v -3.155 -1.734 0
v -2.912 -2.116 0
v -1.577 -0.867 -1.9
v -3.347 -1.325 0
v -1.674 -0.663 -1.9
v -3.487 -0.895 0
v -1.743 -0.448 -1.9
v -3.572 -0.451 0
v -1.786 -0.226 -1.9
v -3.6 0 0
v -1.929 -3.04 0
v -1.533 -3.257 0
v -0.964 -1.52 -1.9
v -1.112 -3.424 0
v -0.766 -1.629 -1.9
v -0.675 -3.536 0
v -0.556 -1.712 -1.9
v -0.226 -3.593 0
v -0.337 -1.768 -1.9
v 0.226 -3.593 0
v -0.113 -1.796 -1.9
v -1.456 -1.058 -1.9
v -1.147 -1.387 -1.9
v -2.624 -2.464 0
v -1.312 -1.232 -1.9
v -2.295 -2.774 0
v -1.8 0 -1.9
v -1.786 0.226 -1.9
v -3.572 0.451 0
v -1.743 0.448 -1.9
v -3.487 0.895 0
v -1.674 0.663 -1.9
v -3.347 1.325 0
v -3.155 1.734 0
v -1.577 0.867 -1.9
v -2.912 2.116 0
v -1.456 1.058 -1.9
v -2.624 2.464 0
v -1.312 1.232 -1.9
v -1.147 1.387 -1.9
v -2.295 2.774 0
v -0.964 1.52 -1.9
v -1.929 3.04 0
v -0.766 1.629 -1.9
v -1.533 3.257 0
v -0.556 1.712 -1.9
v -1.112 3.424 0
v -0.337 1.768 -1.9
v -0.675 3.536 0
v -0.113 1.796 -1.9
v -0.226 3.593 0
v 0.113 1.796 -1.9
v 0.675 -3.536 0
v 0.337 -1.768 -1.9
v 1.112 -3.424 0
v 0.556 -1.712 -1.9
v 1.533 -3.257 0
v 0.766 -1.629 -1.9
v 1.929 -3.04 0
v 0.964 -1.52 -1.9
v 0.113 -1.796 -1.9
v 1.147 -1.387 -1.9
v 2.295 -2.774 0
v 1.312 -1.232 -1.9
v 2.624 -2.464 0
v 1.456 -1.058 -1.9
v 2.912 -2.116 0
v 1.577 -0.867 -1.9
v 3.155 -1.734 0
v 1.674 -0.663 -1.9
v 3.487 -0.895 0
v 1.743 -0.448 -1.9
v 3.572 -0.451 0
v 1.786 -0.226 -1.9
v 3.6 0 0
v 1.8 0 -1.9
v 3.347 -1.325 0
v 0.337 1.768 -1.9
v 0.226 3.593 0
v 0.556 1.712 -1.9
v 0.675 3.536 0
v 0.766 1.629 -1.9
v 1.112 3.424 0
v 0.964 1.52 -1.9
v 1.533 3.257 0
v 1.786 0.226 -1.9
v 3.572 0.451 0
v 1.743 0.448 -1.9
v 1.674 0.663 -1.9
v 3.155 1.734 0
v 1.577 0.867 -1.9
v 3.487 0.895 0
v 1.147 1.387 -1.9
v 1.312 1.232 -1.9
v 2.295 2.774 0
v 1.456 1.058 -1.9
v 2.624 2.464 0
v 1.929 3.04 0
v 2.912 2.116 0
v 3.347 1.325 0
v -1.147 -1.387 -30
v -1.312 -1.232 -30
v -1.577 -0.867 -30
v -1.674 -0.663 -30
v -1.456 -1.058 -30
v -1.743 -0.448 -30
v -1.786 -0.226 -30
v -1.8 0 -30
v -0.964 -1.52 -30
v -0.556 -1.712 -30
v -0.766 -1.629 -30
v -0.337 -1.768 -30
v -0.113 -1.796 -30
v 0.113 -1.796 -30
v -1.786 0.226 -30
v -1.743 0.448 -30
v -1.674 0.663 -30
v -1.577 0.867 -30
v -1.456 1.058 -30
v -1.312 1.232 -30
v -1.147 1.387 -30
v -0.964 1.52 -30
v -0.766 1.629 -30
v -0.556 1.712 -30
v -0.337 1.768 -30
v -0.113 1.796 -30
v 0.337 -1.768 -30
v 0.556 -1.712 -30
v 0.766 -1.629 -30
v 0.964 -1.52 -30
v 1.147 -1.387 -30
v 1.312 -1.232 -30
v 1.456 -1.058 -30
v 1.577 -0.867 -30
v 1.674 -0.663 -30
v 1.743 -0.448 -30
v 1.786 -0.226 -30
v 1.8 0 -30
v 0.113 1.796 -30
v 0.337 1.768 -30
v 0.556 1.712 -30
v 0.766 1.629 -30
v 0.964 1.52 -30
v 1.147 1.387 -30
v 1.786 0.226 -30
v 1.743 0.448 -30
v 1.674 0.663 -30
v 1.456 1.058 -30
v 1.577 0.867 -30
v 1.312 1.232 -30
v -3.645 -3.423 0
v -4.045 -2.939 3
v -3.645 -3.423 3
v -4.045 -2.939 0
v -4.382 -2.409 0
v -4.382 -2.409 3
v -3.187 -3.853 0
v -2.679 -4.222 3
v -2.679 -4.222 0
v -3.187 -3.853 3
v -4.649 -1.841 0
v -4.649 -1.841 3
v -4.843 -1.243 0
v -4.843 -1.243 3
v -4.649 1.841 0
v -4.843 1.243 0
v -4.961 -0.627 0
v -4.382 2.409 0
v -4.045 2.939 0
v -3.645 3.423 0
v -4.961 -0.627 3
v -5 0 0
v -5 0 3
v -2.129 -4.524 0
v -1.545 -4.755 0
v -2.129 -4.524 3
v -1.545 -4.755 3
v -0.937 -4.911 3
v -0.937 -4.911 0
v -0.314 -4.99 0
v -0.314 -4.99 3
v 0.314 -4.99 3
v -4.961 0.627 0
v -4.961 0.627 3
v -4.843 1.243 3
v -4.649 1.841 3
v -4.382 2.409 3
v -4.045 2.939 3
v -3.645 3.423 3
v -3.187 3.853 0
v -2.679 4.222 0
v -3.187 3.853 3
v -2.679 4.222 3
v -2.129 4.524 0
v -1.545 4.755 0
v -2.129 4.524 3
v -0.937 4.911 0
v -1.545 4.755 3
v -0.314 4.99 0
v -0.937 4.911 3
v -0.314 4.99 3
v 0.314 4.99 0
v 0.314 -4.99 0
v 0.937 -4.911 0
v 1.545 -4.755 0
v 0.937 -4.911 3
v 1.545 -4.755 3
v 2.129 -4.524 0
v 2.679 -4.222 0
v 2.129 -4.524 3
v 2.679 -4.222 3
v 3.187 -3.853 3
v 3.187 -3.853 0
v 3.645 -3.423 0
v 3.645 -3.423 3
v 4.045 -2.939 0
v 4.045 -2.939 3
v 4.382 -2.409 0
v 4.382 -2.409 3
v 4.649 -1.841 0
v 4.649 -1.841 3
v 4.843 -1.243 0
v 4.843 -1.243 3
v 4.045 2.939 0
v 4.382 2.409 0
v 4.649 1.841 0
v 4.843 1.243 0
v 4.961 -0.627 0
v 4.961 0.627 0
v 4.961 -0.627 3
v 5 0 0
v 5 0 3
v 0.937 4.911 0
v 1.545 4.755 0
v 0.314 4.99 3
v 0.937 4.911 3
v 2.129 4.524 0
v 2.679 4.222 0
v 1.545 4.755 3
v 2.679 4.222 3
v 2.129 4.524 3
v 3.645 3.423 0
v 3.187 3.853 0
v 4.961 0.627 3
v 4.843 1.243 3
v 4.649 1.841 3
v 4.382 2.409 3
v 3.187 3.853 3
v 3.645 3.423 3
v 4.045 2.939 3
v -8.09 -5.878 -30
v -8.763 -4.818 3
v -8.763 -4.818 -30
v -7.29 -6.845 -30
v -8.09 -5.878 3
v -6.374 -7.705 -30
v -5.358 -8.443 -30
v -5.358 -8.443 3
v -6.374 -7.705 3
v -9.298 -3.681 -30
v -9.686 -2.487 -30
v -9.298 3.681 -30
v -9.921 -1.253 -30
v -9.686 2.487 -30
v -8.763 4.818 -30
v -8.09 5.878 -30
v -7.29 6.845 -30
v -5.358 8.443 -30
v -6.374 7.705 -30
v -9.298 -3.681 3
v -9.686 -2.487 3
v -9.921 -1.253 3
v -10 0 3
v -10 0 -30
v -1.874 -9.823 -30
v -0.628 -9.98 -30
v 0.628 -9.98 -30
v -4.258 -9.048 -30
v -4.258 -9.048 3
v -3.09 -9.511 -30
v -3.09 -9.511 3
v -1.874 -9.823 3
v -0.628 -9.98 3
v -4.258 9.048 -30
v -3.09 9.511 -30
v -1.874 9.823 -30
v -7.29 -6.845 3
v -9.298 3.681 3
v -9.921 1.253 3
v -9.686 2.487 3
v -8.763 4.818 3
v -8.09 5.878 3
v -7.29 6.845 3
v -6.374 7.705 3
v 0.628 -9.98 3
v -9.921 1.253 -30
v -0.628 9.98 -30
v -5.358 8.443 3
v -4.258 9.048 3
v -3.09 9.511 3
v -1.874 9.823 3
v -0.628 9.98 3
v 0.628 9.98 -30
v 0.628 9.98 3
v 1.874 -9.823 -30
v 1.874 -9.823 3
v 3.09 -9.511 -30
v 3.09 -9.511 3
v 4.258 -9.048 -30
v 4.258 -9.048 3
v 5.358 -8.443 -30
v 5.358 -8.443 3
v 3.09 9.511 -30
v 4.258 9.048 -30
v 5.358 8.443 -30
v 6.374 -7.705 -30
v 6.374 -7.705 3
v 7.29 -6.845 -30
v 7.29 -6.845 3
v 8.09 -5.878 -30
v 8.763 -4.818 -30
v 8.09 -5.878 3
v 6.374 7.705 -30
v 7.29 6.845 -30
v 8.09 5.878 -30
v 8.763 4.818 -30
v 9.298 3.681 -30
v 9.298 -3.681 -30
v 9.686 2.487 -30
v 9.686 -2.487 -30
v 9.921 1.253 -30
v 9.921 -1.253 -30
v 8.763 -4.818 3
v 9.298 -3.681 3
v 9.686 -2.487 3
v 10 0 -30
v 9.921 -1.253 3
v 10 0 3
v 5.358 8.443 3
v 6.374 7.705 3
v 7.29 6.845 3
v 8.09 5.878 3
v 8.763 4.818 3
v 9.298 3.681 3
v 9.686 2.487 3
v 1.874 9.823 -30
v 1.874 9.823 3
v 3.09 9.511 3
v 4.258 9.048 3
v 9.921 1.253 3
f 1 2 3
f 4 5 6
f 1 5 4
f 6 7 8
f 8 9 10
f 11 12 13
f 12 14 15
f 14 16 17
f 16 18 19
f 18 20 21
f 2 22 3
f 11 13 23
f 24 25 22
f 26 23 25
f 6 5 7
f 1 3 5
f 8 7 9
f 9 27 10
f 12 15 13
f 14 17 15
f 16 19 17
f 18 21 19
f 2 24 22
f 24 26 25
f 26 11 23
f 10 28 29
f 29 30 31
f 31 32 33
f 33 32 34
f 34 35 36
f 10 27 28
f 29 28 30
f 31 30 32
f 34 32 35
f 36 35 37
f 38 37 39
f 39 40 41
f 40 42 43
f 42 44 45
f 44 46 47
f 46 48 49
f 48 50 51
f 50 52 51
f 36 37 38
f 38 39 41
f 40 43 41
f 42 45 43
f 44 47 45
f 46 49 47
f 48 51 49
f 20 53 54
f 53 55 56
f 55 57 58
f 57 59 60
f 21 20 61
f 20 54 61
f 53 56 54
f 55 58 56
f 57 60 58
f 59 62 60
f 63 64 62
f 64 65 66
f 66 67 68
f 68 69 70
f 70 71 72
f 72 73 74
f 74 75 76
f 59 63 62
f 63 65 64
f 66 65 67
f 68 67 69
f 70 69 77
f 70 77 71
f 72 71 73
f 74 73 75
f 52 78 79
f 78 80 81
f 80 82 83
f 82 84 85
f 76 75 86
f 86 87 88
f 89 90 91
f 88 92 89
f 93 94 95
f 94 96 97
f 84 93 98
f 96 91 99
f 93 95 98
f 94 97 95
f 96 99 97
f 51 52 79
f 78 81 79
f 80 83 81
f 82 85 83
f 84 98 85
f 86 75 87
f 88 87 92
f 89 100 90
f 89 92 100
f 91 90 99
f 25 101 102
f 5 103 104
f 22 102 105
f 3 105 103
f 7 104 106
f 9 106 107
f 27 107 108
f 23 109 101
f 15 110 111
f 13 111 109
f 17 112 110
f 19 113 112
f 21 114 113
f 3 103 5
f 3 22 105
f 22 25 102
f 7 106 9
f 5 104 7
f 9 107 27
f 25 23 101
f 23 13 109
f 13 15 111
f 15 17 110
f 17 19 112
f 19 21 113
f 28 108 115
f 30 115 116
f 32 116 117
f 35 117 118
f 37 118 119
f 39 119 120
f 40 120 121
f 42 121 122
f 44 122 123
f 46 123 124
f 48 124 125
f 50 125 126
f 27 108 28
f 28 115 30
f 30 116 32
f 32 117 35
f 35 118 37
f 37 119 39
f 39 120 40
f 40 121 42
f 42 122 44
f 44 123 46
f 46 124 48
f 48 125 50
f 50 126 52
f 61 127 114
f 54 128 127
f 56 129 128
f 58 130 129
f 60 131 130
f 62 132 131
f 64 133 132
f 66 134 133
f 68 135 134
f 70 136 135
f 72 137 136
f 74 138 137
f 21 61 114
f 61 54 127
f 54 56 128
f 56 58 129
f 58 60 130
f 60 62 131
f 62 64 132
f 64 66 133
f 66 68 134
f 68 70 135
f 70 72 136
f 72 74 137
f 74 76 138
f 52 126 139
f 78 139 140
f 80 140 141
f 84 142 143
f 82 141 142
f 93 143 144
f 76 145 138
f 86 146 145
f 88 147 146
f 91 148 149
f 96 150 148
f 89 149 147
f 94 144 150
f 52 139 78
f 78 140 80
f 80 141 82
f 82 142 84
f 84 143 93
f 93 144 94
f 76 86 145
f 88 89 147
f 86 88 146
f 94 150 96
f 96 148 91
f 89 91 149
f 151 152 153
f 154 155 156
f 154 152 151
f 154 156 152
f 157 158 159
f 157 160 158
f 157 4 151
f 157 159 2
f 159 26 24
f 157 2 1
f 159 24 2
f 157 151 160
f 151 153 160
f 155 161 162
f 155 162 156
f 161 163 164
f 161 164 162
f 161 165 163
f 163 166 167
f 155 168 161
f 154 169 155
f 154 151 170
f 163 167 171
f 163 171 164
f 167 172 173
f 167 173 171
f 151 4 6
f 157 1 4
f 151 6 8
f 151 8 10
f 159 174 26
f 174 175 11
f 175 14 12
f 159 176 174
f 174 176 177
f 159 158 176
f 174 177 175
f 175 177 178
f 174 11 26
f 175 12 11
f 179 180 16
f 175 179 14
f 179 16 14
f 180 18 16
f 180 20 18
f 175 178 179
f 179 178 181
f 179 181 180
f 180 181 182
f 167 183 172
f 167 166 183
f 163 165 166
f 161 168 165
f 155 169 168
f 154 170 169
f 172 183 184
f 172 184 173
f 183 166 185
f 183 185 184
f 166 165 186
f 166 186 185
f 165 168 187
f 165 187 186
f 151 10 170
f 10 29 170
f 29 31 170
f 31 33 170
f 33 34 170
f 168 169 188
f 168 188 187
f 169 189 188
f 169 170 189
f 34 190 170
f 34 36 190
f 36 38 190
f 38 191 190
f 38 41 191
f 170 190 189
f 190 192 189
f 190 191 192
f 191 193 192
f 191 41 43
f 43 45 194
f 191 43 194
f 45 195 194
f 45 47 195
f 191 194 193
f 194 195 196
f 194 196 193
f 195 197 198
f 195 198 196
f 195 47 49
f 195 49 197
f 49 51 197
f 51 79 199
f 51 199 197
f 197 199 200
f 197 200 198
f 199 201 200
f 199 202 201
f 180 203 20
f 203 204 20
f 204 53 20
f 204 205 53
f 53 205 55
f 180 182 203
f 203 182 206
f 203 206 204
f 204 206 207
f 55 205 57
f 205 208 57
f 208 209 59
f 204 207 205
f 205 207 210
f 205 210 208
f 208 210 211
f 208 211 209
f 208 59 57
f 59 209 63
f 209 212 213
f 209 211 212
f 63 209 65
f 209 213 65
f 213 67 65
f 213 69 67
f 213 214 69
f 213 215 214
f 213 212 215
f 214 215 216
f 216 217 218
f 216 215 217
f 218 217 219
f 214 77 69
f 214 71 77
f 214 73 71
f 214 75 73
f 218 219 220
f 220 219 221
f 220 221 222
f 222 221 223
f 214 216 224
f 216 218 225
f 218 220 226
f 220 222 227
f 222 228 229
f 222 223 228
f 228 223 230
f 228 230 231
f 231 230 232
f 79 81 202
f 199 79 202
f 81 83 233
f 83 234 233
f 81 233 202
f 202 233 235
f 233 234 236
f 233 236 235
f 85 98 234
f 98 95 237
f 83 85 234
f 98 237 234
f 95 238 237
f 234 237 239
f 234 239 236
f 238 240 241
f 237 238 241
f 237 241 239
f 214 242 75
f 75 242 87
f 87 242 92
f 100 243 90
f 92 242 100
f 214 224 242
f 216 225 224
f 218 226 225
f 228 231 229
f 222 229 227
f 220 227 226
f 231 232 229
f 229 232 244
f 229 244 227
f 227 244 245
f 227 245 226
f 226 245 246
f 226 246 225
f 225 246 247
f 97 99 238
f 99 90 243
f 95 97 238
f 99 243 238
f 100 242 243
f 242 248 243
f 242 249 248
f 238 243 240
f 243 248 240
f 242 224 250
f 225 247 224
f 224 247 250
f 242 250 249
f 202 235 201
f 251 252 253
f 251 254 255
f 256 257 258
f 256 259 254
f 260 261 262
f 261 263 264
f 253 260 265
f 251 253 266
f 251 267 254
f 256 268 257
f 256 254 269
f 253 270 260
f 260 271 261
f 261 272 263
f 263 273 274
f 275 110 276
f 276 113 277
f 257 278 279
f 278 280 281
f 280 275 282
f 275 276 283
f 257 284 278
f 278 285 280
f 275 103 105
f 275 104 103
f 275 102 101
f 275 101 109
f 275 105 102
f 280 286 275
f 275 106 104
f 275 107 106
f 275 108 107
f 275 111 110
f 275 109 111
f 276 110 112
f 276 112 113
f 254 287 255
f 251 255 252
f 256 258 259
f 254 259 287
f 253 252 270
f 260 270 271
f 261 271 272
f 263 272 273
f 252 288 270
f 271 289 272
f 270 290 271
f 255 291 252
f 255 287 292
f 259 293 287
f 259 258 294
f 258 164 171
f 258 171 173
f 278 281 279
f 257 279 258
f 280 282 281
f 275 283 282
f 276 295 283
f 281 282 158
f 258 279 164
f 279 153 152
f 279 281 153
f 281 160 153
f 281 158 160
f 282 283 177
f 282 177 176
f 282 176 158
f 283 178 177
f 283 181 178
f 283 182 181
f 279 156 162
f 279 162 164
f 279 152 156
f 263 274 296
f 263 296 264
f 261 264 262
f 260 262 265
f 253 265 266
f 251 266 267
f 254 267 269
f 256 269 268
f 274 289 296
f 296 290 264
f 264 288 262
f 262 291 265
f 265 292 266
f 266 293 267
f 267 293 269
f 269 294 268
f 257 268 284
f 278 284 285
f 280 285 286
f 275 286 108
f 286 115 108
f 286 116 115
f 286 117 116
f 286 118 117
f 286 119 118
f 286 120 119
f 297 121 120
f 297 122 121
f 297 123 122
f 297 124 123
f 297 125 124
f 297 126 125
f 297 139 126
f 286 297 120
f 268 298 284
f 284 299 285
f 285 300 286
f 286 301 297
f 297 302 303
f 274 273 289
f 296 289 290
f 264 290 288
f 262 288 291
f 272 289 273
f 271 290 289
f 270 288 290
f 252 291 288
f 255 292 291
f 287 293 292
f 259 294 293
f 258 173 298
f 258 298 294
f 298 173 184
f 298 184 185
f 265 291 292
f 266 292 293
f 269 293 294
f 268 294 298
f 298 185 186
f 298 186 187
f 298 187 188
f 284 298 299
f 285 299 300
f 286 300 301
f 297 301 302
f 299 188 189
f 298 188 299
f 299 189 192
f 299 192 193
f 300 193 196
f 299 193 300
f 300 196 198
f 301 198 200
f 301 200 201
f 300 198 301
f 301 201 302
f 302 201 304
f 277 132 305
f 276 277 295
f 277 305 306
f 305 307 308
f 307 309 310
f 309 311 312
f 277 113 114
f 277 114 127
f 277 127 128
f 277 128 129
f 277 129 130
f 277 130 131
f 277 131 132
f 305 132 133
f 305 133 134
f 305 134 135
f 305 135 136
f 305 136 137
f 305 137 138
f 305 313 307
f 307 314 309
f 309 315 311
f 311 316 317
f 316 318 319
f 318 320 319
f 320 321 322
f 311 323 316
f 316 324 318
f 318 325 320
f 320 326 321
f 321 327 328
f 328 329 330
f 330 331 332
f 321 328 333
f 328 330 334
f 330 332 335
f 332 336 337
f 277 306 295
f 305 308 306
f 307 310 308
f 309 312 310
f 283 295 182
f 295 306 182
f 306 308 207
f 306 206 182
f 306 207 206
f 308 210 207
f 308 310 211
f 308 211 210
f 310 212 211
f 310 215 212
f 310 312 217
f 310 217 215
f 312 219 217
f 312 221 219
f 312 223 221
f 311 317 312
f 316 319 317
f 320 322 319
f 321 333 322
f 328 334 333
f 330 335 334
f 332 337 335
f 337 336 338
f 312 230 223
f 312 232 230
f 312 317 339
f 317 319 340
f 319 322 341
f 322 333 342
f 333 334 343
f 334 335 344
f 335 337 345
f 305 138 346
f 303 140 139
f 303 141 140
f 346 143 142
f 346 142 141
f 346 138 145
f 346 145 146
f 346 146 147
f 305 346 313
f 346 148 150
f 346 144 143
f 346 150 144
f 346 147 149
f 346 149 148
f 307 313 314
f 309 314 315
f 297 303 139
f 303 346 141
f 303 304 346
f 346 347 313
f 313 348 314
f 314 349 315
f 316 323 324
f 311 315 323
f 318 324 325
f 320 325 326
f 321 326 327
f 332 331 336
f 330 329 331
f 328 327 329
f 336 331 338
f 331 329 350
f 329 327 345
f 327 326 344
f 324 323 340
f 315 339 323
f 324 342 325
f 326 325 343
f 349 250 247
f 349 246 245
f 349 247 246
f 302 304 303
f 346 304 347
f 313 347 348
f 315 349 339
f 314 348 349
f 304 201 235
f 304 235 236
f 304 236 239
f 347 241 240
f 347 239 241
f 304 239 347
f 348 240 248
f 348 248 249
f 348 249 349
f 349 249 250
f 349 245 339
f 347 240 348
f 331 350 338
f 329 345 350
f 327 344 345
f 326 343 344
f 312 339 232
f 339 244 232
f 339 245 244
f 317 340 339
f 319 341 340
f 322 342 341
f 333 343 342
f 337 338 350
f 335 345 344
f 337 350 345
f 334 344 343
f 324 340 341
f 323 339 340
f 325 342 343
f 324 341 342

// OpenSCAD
$fn = 50;


difference() {
	union() {
		translate(v = [0, 0, -30.0000000000]) {
			cylinder(h = 33, r = 10.0000000000);
		}
	}
	union() {
		translate(v = [0, 0, 0]) {
			rotate(a = [0, 0, 0]) {
				difference() {
					union() {
						translate(v = [0, 0, -33.0000000000]) {
							cylinder(h = 33, r = 1.5000000000);
						}
						translate(v = [0, 0, -1.9000000000]) {
							cylinder(h = 1.9000000000, r1 = 1.8000000000, r2 = 3.6000000000);
						}
						translate(v = [0, 0, -33.0000000000]) {
							cylinder(h = 33, r = 1.8000000000);
						}
						translate(v = [0, 0, -33.0000000000]) {
							cylinder(h = 33, r = 1.5000000000);
						}
					}
					union();
				}
			}
		}
		#cylinder(h = 3, r = 5.0000000000);
	}
}
